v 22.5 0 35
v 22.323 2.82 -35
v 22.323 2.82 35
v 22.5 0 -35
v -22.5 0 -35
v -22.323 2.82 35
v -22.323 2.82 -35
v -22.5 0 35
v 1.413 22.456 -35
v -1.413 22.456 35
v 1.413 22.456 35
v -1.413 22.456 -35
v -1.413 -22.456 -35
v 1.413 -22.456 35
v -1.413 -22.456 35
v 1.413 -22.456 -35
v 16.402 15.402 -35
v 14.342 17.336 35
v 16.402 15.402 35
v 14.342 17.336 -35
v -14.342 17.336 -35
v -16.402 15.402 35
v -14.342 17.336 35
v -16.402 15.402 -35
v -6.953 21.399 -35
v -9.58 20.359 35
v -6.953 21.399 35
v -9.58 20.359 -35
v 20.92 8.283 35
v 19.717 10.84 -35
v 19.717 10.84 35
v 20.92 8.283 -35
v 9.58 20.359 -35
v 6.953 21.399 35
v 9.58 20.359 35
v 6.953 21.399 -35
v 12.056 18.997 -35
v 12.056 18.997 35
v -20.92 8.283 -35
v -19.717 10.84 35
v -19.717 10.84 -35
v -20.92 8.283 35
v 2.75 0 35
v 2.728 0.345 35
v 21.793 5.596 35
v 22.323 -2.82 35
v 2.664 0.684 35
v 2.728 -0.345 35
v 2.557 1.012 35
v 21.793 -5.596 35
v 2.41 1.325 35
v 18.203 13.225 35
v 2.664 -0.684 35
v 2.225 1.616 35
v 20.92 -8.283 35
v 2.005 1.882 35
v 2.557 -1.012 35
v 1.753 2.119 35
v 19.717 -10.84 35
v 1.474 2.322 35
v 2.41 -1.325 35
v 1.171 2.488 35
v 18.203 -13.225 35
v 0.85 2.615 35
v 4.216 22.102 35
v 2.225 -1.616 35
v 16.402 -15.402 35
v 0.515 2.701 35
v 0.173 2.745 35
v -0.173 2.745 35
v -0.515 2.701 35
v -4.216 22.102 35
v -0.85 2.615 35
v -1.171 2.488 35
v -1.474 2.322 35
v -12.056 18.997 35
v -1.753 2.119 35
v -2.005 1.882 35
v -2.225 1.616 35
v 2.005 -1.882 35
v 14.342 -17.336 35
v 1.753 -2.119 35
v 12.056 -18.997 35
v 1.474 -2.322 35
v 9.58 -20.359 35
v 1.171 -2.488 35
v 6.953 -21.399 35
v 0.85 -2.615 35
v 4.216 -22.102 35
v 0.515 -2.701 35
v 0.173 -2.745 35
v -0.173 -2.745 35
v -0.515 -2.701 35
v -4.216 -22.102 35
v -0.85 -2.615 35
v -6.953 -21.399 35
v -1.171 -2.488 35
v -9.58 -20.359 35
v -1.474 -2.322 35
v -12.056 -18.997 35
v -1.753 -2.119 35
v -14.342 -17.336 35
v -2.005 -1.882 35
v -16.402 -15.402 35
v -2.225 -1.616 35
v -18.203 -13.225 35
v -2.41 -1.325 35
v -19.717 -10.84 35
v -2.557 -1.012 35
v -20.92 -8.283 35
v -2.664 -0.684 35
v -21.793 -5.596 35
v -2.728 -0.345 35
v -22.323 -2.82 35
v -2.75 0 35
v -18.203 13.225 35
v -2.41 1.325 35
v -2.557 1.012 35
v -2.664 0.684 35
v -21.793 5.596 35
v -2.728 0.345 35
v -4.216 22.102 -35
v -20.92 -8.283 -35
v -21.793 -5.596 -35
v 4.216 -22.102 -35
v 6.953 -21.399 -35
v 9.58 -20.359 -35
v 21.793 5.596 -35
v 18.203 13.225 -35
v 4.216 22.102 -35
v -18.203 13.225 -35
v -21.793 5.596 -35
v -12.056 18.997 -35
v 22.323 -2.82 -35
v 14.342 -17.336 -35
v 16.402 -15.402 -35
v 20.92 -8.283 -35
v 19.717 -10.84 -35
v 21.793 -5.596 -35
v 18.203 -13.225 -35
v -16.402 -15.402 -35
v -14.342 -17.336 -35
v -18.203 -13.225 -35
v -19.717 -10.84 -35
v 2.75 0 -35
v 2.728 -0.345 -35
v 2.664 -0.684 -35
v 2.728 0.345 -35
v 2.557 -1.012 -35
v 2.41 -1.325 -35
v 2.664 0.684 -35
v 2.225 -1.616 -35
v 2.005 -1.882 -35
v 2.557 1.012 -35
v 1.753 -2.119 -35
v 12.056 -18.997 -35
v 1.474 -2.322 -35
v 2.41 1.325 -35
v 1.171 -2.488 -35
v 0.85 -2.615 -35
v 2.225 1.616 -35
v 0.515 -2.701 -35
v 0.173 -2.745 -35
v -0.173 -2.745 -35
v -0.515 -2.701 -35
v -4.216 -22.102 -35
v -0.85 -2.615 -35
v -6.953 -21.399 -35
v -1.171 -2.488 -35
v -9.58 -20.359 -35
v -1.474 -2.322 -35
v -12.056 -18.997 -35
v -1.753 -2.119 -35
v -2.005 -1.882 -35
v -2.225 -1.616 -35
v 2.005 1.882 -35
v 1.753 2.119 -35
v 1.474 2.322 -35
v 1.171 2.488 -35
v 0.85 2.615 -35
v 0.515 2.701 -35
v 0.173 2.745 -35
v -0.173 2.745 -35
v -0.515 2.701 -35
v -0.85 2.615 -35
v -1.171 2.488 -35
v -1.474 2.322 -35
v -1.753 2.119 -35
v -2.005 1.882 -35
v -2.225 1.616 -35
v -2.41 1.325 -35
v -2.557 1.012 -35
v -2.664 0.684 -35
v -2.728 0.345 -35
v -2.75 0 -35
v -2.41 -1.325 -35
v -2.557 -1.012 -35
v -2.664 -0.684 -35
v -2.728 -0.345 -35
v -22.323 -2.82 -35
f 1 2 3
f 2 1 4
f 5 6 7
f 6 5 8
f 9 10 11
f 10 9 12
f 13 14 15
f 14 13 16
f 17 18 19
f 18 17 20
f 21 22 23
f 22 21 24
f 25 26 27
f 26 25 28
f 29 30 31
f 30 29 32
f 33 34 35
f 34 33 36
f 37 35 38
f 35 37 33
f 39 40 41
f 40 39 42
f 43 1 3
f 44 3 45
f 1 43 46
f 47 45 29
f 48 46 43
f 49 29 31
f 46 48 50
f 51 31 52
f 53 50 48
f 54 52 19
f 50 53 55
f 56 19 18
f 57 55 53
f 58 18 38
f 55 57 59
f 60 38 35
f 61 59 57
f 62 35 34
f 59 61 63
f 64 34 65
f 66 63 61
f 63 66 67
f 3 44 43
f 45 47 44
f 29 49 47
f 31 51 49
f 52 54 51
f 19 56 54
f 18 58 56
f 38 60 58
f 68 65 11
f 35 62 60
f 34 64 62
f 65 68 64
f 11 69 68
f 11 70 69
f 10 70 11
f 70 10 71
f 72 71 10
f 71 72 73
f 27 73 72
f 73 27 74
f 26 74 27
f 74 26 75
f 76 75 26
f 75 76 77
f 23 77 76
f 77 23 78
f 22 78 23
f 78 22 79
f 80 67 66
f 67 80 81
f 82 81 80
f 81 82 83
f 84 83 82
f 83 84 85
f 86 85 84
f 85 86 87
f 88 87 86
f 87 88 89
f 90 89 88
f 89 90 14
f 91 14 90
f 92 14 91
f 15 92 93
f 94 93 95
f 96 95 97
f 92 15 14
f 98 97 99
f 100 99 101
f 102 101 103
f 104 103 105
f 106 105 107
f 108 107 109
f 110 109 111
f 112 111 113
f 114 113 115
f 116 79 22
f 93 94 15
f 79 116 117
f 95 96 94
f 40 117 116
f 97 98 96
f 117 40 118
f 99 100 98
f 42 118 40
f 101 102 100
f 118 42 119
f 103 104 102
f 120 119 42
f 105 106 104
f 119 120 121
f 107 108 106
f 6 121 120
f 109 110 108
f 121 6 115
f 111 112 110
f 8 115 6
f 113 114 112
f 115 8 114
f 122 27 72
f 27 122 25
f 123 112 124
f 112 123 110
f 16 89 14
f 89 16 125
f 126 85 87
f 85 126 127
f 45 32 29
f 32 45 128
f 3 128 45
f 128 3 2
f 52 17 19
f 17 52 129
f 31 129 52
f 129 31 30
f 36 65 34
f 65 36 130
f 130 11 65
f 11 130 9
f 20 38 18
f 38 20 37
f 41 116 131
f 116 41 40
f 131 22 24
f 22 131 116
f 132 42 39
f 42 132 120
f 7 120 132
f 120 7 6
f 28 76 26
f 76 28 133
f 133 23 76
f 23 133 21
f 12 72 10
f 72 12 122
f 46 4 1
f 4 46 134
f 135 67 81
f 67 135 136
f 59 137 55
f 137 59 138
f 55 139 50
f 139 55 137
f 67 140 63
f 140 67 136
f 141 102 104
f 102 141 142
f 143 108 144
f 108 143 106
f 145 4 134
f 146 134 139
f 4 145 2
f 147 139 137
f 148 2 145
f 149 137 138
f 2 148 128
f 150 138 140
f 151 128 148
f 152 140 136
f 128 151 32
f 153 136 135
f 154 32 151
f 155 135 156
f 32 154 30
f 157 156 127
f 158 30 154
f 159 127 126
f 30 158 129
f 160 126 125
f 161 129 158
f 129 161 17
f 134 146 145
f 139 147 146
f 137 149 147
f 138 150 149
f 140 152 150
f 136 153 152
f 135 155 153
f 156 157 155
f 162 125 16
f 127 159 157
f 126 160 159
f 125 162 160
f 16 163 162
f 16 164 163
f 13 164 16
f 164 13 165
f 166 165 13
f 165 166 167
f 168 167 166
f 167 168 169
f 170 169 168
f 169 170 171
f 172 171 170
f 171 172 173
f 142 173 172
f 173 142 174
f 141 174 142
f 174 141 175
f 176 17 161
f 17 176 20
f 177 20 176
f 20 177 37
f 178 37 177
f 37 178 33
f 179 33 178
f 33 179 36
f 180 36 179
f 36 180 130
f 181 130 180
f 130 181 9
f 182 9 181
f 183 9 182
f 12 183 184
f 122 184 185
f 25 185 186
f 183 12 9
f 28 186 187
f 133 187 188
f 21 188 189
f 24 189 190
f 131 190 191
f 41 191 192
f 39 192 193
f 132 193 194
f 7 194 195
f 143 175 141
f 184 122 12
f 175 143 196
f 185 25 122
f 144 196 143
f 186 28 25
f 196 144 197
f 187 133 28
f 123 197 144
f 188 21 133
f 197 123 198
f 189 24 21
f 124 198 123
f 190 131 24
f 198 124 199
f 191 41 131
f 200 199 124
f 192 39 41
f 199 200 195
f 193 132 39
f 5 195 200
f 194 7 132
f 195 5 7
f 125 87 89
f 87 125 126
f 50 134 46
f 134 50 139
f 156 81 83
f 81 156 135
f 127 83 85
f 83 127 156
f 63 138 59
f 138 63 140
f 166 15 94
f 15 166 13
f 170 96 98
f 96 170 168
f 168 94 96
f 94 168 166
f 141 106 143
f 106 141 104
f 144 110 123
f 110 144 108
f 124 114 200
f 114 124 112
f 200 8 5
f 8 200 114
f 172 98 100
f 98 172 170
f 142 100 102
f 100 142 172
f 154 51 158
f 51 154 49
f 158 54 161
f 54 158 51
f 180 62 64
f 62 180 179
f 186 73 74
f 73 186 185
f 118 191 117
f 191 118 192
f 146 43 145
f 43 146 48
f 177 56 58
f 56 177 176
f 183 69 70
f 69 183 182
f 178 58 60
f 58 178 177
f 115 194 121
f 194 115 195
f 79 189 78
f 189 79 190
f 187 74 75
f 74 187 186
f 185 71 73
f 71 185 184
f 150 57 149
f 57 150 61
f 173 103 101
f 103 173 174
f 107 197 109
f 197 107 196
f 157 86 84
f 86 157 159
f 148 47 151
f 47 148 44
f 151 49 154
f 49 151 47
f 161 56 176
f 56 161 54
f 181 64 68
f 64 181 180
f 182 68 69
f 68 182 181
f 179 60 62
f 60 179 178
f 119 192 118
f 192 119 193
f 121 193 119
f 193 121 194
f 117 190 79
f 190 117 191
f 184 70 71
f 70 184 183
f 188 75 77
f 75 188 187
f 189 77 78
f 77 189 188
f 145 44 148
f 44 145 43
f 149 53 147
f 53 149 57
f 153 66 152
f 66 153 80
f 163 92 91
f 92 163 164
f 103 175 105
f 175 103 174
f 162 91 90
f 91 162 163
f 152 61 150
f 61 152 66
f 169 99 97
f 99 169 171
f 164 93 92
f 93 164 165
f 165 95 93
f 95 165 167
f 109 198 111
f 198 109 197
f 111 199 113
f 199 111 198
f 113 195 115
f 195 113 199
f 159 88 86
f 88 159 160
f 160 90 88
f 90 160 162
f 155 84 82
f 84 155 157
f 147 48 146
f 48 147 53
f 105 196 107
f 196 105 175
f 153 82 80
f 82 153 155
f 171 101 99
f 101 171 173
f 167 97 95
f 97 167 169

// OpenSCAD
$fn = 50;


difference() {
	union() {
		translate(v = [0, 0, -35.0000000000]) {
			cylinder(h = 70, r = 22.5000000000);
		}
	}
	union() {
		translate(v = [0, 0, -100.0000000000]) {
			cylinder(h = 200, r = 2.7500000000);
		}
	}
}
